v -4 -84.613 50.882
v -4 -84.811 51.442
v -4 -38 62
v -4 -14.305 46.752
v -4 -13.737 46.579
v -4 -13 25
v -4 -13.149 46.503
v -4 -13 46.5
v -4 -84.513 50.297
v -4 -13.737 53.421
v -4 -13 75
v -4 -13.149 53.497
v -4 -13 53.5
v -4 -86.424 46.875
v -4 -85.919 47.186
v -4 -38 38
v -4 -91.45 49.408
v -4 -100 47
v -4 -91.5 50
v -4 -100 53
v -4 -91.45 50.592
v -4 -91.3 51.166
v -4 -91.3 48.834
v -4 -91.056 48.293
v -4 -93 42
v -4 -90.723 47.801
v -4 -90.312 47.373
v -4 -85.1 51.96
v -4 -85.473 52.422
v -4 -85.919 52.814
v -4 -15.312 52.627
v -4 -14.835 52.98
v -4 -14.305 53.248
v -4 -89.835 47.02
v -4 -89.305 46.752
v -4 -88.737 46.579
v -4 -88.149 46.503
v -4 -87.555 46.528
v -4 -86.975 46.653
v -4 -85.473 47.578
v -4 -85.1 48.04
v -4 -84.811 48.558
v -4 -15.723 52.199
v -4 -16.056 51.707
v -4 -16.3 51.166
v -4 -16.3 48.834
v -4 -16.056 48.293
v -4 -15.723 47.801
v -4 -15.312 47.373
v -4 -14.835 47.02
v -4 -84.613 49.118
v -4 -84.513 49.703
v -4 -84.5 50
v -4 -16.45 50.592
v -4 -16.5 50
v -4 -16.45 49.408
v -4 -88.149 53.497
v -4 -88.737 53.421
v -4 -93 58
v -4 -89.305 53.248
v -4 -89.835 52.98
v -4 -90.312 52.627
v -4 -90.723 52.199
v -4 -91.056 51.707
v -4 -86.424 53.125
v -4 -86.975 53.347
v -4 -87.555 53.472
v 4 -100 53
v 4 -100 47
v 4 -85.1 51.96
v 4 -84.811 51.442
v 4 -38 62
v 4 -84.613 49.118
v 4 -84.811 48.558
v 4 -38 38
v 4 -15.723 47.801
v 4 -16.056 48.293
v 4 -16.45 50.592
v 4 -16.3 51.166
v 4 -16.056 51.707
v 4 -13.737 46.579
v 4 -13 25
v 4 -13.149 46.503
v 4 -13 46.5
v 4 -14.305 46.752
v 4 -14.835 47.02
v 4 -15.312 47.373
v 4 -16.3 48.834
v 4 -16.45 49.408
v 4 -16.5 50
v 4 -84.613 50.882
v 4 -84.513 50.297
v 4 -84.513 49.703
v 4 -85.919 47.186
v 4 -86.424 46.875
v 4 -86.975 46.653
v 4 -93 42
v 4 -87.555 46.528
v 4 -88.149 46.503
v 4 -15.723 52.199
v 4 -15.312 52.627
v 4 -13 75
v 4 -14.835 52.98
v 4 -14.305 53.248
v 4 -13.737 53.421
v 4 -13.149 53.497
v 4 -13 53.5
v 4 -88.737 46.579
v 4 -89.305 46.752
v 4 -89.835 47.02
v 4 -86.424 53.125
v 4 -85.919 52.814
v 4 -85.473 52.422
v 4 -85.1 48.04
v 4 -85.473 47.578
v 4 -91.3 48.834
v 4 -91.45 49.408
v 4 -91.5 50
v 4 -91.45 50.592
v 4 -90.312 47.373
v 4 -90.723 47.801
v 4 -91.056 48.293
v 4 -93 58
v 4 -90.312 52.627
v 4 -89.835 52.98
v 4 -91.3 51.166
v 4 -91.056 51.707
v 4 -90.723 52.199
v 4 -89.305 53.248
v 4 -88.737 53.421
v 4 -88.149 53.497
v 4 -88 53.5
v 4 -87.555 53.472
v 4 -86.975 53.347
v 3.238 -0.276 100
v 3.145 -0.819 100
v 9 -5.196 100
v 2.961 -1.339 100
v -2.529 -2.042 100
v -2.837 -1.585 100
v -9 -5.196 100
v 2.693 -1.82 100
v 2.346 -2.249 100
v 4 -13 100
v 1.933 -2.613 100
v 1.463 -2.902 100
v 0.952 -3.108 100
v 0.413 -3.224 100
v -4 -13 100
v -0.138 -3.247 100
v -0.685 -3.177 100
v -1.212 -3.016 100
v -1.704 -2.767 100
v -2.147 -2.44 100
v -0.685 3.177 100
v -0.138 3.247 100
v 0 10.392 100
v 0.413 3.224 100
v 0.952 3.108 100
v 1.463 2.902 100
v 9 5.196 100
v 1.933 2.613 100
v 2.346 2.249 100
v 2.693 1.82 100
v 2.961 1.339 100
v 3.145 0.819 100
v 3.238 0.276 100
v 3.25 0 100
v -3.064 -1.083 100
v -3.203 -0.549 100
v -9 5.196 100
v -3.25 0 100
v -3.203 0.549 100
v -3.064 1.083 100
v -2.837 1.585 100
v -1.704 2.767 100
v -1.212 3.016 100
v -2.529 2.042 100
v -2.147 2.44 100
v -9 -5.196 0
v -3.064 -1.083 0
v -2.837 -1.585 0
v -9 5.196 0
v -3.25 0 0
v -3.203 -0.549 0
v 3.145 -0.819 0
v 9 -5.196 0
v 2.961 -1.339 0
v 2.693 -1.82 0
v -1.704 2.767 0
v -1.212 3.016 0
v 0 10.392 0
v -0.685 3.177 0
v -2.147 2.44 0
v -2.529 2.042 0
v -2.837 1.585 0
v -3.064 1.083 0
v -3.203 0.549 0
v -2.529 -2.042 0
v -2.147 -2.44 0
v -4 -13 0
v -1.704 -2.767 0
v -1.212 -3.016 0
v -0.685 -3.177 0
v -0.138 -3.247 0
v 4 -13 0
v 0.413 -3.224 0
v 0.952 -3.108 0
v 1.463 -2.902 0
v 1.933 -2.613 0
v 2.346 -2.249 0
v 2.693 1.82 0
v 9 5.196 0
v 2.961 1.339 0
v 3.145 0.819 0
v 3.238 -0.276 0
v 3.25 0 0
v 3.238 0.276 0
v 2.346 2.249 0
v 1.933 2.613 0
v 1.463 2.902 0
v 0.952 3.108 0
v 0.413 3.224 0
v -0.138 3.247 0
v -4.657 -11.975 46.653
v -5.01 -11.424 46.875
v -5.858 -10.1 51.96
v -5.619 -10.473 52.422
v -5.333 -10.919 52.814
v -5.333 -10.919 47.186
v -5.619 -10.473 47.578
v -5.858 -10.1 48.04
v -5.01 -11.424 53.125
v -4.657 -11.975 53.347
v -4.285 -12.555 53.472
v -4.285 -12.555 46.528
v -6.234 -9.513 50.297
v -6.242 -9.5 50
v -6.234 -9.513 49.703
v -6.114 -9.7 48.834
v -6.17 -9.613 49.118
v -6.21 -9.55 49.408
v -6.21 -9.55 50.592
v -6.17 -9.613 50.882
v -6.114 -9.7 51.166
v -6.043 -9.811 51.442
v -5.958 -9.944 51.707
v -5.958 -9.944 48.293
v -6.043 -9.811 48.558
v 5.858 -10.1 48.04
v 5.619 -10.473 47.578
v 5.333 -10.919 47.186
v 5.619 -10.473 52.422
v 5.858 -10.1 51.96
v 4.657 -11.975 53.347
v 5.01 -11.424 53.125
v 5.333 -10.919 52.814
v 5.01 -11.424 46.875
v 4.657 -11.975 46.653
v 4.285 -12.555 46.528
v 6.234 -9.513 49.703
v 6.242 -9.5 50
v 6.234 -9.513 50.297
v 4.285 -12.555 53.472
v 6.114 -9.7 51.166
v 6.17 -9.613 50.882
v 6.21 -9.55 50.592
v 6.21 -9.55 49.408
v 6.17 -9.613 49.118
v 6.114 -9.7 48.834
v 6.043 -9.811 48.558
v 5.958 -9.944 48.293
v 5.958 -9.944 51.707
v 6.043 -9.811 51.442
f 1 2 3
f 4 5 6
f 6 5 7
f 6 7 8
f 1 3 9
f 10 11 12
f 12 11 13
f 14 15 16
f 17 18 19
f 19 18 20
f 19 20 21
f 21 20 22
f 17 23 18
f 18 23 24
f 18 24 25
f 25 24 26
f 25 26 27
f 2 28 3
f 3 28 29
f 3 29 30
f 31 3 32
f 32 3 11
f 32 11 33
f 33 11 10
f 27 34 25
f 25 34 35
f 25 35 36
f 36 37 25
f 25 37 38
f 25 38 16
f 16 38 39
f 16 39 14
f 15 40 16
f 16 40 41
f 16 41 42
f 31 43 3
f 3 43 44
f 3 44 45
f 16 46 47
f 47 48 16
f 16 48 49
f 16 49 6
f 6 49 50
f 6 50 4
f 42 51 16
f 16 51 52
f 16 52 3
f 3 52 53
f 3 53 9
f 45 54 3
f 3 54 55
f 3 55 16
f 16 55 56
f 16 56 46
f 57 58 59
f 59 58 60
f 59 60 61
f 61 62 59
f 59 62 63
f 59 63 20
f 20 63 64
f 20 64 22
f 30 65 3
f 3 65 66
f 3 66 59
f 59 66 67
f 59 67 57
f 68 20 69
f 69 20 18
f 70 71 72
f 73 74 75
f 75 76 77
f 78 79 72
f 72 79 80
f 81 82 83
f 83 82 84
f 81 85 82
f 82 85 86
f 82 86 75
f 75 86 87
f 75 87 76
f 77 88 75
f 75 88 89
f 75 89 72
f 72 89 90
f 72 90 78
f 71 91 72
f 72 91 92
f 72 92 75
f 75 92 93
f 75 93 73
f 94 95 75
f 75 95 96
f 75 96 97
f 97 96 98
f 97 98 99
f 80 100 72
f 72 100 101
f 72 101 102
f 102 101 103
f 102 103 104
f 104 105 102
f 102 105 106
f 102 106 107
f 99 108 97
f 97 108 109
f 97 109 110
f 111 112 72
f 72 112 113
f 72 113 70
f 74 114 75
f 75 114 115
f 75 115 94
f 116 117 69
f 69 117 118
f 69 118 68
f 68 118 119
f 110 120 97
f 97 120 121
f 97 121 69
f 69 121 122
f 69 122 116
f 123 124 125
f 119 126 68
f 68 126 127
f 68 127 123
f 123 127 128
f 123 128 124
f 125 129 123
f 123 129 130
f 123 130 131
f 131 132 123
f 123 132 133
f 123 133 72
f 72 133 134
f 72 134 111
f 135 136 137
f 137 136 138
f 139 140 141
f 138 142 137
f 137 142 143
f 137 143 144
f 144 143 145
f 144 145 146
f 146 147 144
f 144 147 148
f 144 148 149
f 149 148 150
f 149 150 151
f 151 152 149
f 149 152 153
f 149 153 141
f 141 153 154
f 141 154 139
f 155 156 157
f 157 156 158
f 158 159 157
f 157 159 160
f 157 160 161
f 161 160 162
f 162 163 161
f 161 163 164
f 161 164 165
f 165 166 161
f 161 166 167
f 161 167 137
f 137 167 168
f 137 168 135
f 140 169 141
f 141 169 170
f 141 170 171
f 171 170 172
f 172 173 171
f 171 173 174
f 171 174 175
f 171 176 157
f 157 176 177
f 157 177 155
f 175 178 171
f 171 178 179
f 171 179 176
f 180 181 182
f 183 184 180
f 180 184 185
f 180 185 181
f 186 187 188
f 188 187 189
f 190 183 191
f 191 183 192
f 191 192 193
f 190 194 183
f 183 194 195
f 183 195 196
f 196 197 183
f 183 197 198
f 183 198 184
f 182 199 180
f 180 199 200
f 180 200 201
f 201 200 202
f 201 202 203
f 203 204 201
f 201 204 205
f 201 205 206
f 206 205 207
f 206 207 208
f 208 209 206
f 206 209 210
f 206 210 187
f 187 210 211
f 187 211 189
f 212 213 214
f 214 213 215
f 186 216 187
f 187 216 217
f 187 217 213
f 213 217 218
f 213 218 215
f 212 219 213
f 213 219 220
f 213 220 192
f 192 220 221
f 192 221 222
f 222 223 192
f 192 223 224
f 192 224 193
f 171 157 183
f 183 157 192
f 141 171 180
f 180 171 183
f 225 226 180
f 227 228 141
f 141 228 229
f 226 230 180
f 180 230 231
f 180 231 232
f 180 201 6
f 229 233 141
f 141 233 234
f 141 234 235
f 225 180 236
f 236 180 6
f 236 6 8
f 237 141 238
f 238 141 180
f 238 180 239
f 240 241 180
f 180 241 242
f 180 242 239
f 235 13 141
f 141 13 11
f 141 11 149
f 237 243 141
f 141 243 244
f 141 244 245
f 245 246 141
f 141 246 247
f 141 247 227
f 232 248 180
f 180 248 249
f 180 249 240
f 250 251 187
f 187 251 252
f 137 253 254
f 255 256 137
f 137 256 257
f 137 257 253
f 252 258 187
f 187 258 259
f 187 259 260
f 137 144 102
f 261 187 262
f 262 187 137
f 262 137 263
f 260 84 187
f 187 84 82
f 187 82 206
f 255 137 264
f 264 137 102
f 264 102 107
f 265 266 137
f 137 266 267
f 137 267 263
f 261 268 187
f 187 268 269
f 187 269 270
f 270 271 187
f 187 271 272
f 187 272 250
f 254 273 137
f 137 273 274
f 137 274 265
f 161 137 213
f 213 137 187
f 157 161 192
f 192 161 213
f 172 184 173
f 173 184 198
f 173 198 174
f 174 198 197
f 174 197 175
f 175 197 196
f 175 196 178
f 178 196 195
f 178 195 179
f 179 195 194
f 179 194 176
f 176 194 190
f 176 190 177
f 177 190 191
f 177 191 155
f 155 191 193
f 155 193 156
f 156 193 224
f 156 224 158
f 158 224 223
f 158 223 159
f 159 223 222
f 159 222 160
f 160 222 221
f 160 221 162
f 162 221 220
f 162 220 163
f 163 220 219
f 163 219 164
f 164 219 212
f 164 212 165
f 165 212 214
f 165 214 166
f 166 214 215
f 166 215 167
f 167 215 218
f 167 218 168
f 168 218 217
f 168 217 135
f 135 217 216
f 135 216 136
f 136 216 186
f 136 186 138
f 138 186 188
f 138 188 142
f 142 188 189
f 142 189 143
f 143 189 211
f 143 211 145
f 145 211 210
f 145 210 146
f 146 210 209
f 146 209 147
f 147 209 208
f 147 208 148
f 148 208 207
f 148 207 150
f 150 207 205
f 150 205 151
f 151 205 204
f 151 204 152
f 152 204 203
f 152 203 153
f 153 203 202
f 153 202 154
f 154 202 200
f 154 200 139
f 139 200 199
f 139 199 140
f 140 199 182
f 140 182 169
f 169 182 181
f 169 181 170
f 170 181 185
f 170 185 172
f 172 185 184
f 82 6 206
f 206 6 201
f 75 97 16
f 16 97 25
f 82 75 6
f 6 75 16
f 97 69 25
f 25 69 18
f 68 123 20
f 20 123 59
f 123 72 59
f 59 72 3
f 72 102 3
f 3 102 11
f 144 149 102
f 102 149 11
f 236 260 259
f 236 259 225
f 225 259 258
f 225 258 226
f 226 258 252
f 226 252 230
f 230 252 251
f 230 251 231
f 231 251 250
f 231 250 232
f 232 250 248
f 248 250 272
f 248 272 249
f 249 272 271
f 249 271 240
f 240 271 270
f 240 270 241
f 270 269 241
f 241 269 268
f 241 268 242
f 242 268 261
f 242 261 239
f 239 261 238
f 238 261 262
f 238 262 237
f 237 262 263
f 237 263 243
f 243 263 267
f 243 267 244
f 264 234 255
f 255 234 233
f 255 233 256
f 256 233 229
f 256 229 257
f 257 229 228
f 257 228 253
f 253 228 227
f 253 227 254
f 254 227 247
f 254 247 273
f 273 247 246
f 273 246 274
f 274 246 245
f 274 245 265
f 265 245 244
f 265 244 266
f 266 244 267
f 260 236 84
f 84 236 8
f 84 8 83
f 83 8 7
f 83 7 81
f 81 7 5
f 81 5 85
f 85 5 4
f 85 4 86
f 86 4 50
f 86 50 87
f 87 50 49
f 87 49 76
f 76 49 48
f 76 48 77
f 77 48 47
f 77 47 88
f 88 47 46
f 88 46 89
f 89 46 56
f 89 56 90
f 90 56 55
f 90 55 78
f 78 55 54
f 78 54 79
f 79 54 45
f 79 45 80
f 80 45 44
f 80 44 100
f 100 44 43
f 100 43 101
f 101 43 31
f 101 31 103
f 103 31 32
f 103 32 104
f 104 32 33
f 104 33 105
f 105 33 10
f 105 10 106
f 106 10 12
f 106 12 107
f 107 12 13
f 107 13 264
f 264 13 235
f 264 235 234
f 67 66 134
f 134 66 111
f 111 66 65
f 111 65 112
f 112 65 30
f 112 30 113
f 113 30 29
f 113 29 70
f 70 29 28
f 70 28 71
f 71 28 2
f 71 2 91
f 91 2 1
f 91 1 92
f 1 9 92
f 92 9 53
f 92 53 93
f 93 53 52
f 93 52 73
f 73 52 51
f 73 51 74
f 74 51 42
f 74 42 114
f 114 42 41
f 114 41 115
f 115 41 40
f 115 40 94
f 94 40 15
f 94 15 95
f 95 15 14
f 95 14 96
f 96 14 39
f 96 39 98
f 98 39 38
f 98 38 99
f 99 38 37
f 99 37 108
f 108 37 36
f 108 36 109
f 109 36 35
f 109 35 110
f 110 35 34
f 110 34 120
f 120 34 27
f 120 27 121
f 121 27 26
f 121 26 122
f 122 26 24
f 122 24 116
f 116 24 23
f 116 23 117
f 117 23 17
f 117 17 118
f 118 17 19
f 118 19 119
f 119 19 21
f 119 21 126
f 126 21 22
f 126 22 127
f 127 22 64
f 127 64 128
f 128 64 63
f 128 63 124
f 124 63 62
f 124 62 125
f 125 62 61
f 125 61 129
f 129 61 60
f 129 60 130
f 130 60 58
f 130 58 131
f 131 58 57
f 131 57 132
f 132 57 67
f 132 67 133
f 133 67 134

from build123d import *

# Parameters (mm, degrees)
SKETCH_1_R               = 3.25
EXTRUDE_1_DEPTH          = 100
CUT_EXTRUDE_1_DEPTH      = 143.017604543
CUT_EXTRUDE_1_DEPTH_BACK = 143.017604543
SKETCH_2_R               = 3.5


with BuildPart() as part:
    # 草圖1 → 填料-伸長1 (new body)
    with BuildSketch(Plane.XY):
        Polygon((-9, 5.196152423), (-9, -5.196152423), (-4, -13), (-4, -100), (4, -100), (4, -13), (9, -5.196152423), (9, 5.196152423), (0, 10.392304845), align=None)
        Circle(SKETCH_1_R, mode=Mode.SUBTRACT)
    extrude(amount=EXTRUDE_1_DEPTH)

    # 草圖2 → 除料-伸長1 (cut, two sides: drawn at the far end of the back side and taken through both)
    with BuildSketch(Plane.ZY.offset(4).offset(-CUT_EXTRUDE_1_DEPTH_BACK)):
        Polygon((25, -13), (0, -13), (0, -100), (47, -100), (42, -93), (38, -38), align=None)
        Polygon((58, -93), (53, -100), (100, -100), (100, -13), (75, -13), (62, -38), align=None)
        Polygon((14.096436709, -107.454844565), (0, -100), (100, -100), (75.233428016, -107.454844565), align=None)
        with BuildLine():
            Line((53.5, -13), (46.5, -13))
            ThreePointArc((46.5, -13), (50, -16.5), (53.5, -13))
        make_face()
        with BuildLine():
            ThreePointArc((53.5, -13), (50, -9.5), (46.5, -13))
            Line((46.5, -13), (53.5, -13))
        make_face()
        with Locations(Location((50, -88, 0), (0, 0, 270))):
            Circle(SKETCH_2_R)
    extrude(amount=CUT_EXTRUDE_1_DEPTH + CUT_EXTRUDE_1_DEPTH_BACK, mode=Mode.SUBTRACT)


solid = part.part
